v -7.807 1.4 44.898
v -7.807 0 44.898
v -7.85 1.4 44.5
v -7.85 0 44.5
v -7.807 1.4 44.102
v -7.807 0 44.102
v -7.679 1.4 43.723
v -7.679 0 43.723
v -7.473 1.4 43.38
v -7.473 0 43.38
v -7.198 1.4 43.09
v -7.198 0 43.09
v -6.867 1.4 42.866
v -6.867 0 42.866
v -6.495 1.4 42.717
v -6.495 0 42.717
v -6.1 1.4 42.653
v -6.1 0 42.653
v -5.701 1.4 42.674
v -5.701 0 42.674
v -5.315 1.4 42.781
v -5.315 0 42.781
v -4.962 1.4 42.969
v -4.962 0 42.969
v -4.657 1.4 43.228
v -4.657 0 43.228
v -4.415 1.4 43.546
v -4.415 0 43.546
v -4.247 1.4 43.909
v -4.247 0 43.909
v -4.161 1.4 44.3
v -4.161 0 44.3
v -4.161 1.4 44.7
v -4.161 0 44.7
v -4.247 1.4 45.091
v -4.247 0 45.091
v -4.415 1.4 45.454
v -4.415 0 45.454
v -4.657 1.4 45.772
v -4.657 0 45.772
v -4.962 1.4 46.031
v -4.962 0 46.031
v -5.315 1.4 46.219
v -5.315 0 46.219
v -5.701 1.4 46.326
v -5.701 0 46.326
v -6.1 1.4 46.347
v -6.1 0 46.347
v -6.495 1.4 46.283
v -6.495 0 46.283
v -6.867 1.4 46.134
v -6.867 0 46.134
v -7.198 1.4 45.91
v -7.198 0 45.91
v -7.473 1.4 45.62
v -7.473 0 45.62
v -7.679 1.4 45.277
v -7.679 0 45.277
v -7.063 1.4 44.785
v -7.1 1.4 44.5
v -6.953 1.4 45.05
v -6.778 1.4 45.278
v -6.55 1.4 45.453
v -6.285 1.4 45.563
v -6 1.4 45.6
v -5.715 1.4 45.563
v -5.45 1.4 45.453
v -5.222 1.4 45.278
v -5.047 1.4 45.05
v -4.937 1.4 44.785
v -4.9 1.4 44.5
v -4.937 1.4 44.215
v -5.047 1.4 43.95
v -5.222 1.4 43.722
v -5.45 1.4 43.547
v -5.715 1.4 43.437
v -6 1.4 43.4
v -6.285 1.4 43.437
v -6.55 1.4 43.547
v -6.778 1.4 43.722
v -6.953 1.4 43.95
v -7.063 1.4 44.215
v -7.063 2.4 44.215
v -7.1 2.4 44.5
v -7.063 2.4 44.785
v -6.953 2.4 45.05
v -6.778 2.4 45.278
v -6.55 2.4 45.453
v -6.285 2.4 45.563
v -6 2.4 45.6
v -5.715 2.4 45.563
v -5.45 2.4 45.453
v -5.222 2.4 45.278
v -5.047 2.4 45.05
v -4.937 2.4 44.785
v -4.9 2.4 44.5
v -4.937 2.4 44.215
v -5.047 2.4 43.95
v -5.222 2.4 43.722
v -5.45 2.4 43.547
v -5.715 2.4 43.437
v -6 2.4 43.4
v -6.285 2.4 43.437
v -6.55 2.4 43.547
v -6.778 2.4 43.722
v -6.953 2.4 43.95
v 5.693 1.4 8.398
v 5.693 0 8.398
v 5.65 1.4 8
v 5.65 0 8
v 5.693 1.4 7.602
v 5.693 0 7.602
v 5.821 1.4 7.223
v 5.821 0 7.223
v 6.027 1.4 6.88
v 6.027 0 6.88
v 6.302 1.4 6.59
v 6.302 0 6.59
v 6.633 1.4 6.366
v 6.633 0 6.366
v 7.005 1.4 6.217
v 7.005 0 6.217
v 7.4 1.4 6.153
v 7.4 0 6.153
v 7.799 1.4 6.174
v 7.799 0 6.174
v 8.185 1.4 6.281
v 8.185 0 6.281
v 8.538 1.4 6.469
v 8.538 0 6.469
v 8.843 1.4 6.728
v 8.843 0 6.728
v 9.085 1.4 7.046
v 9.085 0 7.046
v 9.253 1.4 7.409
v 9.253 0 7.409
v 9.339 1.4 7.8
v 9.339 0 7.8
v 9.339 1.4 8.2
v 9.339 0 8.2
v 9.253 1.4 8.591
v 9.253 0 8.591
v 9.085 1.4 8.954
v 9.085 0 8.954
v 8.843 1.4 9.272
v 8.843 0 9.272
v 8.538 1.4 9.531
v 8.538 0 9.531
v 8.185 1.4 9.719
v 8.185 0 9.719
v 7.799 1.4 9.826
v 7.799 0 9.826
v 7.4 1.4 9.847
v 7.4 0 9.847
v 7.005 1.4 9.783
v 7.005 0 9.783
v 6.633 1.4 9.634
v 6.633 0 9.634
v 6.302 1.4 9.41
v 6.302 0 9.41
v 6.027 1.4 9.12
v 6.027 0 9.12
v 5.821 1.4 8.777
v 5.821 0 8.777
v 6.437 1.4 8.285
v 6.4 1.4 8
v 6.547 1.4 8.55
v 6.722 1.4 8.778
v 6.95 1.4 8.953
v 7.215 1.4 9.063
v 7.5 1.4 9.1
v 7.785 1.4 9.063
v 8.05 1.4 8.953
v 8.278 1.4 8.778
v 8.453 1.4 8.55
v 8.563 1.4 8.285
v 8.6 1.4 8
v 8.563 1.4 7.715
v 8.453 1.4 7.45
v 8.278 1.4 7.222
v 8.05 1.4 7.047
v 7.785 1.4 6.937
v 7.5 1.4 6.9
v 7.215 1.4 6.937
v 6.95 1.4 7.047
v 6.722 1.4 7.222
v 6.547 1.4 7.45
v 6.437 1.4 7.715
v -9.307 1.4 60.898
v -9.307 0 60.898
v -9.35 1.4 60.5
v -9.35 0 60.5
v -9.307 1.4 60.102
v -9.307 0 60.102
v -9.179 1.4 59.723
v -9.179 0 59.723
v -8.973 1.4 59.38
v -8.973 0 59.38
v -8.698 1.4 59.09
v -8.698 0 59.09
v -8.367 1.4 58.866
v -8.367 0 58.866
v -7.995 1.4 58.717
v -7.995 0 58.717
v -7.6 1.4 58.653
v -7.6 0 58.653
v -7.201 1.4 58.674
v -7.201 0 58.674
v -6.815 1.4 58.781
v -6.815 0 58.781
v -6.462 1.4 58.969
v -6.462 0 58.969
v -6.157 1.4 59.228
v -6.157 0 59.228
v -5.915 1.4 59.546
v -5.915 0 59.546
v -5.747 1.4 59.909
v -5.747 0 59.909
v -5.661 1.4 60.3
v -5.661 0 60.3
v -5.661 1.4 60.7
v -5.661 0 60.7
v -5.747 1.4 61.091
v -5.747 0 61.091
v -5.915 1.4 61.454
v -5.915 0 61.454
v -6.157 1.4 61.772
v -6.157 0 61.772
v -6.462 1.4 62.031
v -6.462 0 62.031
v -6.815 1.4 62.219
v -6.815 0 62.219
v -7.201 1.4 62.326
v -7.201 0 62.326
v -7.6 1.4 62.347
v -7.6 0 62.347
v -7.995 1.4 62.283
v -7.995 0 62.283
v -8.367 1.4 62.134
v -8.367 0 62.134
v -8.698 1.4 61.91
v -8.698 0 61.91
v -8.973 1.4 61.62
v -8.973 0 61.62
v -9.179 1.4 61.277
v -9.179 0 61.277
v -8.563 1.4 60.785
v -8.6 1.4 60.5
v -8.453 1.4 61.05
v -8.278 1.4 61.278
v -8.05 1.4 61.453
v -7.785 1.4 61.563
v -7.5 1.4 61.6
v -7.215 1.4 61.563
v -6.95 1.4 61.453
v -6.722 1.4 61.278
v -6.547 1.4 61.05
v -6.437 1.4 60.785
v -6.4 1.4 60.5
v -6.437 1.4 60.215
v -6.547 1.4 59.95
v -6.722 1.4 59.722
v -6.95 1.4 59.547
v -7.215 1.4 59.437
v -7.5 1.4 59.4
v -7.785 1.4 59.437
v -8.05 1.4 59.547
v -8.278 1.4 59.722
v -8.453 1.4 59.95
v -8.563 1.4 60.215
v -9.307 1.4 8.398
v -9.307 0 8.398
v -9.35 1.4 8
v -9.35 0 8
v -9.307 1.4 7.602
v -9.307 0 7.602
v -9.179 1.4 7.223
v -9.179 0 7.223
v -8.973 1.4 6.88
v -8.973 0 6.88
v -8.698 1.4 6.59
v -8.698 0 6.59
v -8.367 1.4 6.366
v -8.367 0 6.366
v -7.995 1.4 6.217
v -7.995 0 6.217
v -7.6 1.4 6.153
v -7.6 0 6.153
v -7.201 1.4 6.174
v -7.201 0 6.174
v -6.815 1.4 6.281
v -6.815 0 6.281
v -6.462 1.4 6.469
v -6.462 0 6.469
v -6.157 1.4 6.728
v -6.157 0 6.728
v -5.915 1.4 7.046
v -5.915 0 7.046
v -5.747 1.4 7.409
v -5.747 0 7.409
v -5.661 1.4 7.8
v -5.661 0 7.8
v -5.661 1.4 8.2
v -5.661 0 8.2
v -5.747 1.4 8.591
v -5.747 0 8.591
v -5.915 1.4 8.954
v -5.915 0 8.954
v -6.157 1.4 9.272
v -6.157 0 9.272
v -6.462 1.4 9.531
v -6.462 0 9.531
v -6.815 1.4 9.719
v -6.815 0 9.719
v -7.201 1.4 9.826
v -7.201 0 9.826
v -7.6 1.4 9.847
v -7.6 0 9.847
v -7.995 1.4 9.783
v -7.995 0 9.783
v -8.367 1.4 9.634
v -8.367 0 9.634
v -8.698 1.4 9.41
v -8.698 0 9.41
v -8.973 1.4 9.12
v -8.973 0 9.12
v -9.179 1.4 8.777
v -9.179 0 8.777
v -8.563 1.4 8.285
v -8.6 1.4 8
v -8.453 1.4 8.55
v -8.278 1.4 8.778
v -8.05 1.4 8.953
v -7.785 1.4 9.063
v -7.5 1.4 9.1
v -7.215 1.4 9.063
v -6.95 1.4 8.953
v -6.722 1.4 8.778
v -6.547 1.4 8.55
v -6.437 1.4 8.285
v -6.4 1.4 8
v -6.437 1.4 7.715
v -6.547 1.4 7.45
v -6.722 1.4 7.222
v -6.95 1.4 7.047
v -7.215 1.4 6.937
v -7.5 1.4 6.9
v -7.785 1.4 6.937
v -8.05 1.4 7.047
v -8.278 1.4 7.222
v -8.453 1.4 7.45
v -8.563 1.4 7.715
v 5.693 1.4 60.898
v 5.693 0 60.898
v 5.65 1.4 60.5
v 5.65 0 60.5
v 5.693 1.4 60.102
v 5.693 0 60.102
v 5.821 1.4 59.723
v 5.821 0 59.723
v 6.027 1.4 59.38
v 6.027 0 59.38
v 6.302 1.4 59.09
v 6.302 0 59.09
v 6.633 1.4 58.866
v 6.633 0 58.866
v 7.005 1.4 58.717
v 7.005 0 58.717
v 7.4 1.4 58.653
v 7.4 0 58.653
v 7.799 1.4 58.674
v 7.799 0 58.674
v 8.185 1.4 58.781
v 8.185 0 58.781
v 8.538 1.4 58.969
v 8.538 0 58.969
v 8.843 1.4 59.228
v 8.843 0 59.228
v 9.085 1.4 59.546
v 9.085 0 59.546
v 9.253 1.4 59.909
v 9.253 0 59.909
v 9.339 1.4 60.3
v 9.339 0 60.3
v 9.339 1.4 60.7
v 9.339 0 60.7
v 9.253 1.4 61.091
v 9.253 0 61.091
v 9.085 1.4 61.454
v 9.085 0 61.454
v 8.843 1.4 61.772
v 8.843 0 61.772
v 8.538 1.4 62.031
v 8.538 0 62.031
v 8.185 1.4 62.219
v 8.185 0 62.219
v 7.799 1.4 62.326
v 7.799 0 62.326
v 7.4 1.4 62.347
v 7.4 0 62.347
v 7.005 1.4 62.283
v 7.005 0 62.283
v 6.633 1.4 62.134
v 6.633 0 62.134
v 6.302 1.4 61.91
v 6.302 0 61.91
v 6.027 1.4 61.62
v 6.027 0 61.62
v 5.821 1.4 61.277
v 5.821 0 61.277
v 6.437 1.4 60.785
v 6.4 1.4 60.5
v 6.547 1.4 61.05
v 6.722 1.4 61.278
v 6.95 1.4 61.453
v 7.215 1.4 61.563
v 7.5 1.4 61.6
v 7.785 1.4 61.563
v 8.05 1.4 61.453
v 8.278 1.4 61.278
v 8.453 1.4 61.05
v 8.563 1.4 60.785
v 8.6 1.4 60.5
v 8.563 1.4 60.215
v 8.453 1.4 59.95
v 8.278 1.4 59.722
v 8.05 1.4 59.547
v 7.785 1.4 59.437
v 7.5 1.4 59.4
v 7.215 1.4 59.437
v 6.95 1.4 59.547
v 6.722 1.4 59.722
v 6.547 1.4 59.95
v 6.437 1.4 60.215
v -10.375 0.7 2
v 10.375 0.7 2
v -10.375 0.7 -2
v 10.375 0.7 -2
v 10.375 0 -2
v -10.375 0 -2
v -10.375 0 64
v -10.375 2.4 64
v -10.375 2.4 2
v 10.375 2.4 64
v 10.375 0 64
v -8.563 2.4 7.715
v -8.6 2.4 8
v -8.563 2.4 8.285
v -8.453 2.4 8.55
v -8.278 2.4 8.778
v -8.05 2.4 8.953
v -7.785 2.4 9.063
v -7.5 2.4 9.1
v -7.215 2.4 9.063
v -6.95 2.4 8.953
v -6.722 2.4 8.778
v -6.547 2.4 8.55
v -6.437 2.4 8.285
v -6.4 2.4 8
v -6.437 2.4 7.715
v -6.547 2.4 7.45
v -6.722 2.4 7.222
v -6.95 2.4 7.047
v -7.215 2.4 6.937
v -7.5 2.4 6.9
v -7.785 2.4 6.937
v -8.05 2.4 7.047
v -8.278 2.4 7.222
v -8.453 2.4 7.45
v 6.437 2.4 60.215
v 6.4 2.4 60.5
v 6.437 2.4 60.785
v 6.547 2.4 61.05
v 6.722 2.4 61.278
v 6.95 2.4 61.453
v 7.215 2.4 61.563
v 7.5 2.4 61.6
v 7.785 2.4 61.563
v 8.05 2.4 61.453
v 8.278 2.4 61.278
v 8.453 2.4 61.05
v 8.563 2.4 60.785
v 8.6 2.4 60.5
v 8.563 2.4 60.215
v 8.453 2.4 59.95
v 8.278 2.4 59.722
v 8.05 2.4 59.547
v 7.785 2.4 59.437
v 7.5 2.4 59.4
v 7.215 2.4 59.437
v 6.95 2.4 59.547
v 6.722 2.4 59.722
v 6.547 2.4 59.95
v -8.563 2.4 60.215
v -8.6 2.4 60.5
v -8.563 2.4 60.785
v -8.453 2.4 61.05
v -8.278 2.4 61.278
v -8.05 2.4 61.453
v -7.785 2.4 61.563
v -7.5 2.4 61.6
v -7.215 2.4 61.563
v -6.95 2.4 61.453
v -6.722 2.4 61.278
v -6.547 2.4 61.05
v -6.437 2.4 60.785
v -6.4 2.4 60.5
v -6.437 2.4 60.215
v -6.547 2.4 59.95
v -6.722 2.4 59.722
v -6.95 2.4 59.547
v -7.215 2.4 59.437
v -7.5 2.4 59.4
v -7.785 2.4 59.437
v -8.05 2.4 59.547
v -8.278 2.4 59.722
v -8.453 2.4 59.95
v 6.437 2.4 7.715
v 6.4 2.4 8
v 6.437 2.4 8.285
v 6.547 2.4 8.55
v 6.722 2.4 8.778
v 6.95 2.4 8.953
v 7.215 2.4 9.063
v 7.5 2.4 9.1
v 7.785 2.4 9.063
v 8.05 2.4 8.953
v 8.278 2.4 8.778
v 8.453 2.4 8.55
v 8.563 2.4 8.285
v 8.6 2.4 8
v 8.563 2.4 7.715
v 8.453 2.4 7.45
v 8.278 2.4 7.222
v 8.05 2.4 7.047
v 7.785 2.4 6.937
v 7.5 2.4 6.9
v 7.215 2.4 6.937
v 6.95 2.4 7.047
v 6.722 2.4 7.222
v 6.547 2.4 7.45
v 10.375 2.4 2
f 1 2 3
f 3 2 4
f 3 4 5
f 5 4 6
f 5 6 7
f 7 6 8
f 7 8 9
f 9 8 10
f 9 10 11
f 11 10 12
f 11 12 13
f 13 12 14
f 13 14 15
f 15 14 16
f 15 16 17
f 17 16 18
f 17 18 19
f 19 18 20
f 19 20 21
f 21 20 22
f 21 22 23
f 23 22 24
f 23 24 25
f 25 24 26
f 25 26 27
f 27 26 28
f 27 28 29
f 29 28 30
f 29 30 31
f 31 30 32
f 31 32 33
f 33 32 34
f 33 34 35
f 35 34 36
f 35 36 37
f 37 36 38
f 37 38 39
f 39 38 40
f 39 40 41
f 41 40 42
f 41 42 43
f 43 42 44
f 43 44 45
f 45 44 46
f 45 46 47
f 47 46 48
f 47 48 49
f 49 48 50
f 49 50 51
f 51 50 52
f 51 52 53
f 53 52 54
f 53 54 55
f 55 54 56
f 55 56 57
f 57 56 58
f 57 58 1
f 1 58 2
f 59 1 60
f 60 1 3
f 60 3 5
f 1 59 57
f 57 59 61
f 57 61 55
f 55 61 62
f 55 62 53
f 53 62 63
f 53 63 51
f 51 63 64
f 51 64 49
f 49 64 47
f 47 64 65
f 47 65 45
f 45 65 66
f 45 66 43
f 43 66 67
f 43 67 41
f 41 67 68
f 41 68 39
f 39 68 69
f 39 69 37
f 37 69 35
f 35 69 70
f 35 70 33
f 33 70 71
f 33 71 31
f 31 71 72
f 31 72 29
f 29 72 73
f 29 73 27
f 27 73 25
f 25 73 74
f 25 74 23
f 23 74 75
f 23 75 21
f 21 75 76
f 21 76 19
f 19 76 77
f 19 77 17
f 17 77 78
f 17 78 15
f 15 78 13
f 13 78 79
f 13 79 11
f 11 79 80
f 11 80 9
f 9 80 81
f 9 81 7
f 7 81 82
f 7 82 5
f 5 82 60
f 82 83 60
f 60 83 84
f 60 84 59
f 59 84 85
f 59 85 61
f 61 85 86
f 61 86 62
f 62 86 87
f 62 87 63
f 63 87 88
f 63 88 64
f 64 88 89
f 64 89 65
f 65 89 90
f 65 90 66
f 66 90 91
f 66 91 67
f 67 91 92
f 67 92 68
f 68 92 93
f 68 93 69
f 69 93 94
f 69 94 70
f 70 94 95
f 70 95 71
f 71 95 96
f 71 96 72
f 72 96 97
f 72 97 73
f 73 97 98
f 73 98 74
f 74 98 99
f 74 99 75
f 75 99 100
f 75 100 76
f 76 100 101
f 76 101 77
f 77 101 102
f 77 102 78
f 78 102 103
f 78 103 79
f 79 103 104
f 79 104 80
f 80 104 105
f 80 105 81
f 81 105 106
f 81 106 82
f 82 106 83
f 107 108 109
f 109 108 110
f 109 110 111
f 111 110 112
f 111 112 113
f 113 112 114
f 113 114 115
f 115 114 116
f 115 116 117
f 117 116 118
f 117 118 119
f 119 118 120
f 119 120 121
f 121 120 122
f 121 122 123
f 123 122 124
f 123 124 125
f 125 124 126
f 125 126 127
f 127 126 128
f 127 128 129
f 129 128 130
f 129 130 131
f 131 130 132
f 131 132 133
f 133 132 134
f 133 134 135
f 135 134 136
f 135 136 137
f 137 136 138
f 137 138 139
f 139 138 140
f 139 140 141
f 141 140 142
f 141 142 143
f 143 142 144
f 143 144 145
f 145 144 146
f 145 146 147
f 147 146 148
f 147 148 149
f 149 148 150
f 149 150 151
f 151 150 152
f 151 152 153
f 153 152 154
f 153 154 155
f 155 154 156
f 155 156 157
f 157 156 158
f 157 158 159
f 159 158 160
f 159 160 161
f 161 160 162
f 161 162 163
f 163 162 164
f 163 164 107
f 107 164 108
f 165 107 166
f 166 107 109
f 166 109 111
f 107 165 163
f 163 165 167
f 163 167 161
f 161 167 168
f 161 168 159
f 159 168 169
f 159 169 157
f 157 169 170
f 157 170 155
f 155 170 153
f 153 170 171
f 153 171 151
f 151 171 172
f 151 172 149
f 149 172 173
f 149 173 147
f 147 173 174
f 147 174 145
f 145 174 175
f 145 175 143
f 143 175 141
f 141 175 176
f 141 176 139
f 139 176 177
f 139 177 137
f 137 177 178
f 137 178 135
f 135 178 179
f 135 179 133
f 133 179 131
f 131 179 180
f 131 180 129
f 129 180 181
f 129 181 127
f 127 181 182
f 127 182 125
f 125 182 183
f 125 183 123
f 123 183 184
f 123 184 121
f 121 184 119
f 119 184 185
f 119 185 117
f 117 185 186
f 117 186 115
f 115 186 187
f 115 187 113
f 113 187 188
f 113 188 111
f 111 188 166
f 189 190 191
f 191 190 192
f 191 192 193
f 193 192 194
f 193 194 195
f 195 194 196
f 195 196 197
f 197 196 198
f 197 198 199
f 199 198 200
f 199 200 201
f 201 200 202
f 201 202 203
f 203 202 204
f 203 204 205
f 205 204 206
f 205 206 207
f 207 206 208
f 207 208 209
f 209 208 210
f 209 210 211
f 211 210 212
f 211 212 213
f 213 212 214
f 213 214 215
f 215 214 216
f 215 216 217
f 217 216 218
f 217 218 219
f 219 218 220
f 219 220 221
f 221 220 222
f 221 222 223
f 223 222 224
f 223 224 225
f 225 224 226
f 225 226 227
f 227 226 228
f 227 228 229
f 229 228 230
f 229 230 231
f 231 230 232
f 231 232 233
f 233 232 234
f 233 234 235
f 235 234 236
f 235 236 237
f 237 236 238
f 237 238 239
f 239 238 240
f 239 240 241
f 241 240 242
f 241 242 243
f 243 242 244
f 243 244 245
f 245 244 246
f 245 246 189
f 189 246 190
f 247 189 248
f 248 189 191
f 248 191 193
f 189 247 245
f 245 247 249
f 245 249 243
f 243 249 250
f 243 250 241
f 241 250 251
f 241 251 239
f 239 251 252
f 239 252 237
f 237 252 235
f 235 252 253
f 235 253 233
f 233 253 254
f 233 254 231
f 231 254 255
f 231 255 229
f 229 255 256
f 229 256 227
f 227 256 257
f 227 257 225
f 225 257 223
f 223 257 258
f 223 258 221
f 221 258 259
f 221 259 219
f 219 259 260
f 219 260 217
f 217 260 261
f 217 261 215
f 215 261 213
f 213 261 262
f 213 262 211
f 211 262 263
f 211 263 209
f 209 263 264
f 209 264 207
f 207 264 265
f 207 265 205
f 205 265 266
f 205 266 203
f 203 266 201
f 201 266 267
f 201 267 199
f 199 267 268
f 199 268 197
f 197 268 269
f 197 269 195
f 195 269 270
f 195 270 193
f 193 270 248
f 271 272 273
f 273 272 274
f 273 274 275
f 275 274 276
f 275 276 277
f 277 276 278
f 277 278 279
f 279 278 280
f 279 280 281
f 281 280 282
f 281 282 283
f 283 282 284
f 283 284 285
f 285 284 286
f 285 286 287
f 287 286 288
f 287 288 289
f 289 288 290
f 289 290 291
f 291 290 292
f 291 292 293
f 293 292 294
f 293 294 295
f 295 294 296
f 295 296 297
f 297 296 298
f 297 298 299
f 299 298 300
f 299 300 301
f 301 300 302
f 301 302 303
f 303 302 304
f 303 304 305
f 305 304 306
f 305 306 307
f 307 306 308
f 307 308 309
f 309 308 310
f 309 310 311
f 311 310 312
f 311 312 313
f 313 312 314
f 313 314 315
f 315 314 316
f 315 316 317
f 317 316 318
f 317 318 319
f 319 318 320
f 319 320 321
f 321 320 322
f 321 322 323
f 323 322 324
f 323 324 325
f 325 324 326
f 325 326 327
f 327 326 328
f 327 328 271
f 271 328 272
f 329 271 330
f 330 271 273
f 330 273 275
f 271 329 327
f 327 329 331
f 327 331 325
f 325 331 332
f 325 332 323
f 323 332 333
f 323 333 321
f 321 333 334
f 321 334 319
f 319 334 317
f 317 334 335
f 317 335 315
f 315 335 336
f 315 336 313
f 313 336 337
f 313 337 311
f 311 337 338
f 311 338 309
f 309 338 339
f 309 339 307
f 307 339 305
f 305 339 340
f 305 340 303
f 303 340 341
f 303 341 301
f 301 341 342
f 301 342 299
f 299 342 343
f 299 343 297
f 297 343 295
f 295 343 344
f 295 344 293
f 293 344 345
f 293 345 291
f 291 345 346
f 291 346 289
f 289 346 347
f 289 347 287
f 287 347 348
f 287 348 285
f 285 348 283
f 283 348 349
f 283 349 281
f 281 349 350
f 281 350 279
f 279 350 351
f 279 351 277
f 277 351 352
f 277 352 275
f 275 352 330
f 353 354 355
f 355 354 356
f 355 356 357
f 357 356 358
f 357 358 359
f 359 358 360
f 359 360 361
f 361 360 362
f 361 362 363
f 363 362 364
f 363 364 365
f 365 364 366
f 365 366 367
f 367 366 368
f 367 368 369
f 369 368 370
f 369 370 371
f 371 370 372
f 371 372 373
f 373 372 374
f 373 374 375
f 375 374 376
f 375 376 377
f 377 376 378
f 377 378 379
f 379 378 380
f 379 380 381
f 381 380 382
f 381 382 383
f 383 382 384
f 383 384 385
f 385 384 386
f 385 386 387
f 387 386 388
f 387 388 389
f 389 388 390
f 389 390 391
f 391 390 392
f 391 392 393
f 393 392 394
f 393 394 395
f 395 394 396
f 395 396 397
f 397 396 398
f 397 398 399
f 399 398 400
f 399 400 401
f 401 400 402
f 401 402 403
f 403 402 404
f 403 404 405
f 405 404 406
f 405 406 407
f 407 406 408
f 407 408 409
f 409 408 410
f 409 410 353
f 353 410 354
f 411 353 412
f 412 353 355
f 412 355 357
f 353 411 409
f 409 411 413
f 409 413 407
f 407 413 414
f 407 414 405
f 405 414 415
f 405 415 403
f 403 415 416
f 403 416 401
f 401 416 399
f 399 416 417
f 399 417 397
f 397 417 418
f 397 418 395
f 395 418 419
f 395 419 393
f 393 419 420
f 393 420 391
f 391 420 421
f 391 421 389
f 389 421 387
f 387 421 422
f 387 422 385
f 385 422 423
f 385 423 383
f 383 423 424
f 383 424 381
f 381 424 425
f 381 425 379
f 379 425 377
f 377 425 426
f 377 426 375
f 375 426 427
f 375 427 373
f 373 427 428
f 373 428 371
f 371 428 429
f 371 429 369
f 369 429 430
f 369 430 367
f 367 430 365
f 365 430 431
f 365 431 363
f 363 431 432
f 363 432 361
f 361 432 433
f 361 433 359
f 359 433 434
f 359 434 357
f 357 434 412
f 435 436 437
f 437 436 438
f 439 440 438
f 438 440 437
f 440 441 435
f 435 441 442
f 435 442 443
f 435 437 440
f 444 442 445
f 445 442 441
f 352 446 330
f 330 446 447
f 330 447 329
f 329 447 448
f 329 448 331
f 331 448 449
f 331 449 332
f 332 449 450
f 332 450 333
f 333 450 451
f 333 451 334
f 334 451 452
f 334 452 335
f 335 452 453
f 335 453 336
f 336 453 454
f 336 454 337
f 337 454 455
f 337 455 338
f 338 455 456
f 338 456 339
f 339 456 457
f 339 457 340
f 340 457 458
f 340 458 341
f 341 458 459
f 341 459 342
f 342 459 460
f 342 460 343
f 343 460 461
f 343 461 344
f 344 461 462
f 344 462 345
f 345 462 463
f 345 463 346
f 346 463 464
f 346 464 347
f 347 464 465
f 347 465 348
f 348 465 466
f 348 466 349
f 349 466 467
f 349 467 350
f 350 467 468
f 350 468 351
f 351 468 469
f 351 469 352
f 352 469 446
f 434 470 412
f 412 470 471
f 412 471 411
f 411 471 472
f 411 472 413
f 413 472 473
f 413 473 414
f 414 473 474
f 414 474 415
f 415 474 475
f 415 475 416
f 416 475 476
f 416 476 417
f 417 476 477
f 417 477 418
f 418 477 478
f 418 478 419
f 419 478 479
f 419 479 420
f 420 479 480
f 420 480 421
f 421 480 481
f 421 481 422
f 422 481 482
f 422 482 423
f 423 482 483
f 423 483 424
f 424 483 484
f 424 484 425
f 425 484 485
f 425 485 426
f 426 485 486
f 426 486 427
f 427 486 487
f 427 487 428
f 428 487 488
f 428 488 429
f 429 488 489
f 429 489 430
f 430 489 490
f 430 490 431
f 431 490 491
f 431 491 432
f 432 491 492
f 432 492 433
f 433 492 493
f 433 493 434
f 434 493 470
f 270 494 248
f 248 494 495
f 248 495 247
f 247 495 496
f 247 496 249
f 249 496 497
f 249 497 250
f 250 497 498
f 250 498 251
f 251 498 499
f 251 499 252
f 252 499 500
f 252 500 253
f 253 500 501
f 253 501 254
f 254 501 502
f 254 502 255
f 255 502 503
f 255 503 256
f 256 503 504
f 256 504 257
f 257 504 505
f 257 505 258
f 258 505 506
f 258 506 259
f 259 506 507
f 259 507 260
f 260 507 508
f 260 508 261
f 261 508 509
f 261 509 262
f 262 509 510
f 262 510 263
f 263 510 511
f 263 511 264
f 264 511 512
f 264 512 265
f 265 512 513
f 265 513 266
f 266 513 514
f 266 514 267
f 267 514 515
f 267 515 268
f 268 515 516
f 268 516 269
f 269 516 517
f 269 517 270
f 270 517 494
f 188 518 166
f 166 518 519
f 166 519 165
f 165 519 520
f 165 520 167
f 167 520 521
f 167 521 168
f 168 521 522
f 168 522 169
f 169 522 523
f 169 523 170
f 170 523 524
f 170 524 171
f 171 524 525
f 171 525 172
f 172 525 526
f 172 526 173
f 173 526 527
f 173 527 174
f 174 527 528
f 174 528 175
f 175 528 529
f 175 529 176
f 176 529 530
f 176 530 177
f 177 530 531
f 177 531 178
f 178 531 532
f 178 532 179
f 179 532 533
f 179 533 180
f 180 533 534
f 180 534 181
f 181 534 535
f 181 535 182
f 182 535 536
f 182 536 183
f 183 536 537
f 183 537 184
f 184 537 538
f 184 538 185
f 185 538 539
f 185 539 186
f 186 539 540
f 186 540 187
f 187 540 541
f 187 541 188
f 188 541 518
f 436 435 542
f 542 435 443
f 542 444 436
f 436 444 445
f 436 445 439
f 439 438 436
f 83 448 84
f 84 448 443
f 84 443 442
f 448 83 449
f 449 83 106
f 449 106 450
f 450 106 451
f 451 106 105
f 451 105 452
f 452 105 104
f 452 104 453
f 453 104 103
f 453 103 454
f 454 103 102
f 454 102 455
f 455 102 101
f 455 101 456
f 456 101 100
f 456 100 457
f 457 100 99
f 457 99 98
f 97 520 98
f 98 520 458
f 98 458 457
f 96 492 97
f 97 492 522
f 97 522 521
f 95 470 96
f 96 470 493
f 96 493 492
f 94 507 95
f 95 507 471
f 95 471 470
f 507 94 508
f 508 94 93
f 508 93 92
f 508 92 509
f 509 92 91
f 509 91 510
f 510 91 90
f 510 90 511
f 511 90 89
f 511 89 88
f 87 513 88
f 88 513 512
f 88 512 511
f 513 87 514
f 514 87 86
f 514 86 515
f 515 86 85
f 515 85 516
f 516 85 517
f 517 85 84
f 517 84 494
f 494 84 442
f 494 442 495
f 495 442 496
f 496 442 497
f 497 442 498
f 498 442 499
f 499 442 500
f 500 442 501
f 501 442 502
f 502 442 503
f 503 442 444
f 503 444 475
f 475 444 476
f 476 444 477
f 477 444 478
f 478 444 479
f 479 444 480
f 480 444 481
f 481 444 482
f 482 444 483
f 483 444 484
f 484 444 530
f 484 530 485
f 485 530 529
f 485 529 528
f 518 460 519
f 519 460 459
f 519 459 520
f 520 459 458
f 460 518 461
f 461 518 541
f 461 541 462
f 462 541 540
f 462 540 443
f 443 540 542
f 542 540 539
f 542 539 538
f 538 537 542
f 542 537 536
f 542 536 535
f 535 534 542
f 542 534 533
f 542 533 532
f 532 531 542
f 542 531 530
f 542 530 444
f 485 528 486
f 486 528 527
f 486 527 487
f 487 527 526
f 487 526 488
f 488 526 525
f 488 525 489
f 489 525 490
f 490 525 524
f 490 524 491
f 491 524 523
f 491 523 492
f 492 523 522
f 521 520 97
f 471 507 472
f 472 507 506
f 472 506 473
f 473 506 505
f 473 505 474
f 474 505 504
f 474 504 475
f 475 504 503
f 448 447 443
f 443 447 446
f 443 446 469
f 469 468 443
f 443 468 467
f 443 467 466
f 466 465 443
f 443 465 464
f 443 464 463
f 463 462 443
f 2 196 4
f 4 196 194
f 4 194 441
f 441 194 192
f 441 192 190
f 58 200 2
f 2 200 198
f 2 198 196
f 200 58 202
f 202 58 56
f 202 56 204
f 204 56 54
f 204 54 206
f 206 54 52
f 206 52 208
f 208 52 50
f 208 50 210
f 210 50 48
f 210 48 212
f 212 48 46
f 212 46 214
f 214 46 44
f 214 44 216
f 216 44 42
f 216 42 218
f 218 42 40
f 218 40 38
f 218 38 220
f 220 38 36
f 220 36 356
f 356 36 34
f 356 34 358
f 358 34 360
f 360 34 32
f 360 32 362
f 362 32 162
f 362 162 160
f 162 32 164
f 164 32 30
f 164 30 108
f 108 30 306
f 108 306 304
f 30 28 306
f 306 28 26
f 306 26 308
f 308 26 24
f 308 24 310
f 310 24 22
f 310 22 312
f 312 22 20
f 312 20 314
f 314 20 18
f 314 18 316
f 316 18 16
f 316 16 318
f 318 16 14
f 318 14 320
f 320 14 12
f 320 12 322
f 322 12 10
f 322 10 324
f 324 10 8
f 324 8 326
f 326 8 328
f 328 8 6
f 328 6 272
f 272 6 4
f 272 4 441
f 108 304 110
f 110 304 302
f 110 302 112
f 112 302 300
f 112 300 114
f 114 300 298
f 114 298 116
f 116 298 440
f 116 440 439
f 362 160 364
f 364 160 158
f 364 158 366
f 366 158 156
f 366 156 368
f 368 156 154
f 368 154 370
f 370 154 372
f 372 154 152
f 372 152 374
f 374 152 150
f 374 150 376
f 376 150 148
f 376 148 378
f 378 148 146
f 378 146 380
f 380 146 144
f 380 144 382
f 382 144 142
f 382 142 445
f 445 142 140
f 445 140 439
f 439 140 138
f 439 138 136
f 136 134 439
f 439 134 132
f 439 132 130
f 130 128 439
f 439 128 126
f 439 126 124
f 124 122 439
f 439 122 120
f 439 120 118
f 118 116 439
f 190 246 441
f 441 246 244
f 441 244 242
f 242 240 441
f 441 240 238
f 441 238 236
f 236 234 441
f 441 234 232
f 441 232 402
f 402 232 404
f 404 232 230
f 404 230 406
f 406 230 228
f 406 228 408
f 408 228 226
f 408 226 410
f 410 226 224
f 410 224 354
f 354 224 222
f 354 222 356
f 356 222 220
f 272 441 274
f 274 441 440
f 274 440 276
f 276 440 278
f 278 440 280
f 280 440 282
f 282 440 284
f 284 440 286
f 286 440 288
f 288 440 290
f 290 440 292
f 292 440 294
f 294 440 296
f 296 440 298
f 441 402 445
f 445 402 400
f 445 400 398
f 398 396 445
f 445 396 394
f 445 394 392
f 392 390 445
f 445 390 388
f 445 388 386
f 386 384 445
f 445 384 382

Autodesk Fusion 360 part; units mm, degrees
sketch "スケッチ1" plane through (0, 0, 0) normal (0, 1, 0) x (1, 0, 0)
  line L0 (-10.375, 2) -> (10.375, 2)
  line L1 (10.375, 2) -> (10.375, -64)
  line L2 (10.375, -64) -> (-10.375, -64)
  line L3 (-10.375, -64) -> (-10.375, 2)
  line L4 (0, 0) -> (0, -64)
  circle A0 centre (7.5, -8) radius 1.1
  circle A1 centre (7.5, -8) radius 1.85
  circle A2 centre (7.5, -60.5) radius 1.1
  circle A3 centre (7.5, -60.5) radius 1.85
  line L5 (-10.375, -2) -> (10.375, -2)
  circle A4 centre (-7.5, -8) radius 1.85
  circle A5 centre (-7.5, -8) radius 1.1
  circle A6 centre (-7.5, -60.5) radius 1.85
  circle A7 centre (-7.5, -60.5) radius 1.1
  circle A8 centre (-6, -44.5) radius 1.1
  circle A9 centre (-6, -44.5) radius 1.85
  dimension "d1" = 66
  dimension "d2" = 20.75
  dimension "d3" = 10.375
  dimension "d4" = 2.2
  dimension "d6" = 10
  dimension "d7" = 3.7
  dimension "d8" = 2.2
  dimension "d9" = 3.7
  dimension "d11" = 62.5
  dimension "d12" = 7.5
  dimension "d13" = 7.5
  dimension "d14" = 4
  dimension "d27" = 3.7
  dimension "d28" = 2.2
  dimension "d29" = 6
  dimension "d30" = 46.5
extrude "押し出し4" add sketch "スケッチ1" along normal blind 0.7 contours L0 L1 L3 L5 | L2 L3 L4 L5 | L1 L2 L4 L5 | A1 | A3 | A4 | A6 | A8 | A9 makes body 1
extrude "押し出し5" add sketch "スケッチ1" along normal blind 2.4 separate body contours L2 L3 L4 L5 | L1 L2 L4 L5 | A1 | A3 | A4 | A6 | A8 | A9 makes body 2
combine "結合1" operation add target body 2 tool bodies 1
extrude "押し出し6" cut sketch "スケッチ1" along normal blind 1.4 contours A1 | A3 | A4 | A6 bodies 2
extrude "押し出し7" cut sketch "スケッチ1" along normal blind 2.4 contours A8 bodies 2
extrude "押し出し8" cut sketch "スケッチ1" along normal blind 1.4 contours A9 bodies 2
